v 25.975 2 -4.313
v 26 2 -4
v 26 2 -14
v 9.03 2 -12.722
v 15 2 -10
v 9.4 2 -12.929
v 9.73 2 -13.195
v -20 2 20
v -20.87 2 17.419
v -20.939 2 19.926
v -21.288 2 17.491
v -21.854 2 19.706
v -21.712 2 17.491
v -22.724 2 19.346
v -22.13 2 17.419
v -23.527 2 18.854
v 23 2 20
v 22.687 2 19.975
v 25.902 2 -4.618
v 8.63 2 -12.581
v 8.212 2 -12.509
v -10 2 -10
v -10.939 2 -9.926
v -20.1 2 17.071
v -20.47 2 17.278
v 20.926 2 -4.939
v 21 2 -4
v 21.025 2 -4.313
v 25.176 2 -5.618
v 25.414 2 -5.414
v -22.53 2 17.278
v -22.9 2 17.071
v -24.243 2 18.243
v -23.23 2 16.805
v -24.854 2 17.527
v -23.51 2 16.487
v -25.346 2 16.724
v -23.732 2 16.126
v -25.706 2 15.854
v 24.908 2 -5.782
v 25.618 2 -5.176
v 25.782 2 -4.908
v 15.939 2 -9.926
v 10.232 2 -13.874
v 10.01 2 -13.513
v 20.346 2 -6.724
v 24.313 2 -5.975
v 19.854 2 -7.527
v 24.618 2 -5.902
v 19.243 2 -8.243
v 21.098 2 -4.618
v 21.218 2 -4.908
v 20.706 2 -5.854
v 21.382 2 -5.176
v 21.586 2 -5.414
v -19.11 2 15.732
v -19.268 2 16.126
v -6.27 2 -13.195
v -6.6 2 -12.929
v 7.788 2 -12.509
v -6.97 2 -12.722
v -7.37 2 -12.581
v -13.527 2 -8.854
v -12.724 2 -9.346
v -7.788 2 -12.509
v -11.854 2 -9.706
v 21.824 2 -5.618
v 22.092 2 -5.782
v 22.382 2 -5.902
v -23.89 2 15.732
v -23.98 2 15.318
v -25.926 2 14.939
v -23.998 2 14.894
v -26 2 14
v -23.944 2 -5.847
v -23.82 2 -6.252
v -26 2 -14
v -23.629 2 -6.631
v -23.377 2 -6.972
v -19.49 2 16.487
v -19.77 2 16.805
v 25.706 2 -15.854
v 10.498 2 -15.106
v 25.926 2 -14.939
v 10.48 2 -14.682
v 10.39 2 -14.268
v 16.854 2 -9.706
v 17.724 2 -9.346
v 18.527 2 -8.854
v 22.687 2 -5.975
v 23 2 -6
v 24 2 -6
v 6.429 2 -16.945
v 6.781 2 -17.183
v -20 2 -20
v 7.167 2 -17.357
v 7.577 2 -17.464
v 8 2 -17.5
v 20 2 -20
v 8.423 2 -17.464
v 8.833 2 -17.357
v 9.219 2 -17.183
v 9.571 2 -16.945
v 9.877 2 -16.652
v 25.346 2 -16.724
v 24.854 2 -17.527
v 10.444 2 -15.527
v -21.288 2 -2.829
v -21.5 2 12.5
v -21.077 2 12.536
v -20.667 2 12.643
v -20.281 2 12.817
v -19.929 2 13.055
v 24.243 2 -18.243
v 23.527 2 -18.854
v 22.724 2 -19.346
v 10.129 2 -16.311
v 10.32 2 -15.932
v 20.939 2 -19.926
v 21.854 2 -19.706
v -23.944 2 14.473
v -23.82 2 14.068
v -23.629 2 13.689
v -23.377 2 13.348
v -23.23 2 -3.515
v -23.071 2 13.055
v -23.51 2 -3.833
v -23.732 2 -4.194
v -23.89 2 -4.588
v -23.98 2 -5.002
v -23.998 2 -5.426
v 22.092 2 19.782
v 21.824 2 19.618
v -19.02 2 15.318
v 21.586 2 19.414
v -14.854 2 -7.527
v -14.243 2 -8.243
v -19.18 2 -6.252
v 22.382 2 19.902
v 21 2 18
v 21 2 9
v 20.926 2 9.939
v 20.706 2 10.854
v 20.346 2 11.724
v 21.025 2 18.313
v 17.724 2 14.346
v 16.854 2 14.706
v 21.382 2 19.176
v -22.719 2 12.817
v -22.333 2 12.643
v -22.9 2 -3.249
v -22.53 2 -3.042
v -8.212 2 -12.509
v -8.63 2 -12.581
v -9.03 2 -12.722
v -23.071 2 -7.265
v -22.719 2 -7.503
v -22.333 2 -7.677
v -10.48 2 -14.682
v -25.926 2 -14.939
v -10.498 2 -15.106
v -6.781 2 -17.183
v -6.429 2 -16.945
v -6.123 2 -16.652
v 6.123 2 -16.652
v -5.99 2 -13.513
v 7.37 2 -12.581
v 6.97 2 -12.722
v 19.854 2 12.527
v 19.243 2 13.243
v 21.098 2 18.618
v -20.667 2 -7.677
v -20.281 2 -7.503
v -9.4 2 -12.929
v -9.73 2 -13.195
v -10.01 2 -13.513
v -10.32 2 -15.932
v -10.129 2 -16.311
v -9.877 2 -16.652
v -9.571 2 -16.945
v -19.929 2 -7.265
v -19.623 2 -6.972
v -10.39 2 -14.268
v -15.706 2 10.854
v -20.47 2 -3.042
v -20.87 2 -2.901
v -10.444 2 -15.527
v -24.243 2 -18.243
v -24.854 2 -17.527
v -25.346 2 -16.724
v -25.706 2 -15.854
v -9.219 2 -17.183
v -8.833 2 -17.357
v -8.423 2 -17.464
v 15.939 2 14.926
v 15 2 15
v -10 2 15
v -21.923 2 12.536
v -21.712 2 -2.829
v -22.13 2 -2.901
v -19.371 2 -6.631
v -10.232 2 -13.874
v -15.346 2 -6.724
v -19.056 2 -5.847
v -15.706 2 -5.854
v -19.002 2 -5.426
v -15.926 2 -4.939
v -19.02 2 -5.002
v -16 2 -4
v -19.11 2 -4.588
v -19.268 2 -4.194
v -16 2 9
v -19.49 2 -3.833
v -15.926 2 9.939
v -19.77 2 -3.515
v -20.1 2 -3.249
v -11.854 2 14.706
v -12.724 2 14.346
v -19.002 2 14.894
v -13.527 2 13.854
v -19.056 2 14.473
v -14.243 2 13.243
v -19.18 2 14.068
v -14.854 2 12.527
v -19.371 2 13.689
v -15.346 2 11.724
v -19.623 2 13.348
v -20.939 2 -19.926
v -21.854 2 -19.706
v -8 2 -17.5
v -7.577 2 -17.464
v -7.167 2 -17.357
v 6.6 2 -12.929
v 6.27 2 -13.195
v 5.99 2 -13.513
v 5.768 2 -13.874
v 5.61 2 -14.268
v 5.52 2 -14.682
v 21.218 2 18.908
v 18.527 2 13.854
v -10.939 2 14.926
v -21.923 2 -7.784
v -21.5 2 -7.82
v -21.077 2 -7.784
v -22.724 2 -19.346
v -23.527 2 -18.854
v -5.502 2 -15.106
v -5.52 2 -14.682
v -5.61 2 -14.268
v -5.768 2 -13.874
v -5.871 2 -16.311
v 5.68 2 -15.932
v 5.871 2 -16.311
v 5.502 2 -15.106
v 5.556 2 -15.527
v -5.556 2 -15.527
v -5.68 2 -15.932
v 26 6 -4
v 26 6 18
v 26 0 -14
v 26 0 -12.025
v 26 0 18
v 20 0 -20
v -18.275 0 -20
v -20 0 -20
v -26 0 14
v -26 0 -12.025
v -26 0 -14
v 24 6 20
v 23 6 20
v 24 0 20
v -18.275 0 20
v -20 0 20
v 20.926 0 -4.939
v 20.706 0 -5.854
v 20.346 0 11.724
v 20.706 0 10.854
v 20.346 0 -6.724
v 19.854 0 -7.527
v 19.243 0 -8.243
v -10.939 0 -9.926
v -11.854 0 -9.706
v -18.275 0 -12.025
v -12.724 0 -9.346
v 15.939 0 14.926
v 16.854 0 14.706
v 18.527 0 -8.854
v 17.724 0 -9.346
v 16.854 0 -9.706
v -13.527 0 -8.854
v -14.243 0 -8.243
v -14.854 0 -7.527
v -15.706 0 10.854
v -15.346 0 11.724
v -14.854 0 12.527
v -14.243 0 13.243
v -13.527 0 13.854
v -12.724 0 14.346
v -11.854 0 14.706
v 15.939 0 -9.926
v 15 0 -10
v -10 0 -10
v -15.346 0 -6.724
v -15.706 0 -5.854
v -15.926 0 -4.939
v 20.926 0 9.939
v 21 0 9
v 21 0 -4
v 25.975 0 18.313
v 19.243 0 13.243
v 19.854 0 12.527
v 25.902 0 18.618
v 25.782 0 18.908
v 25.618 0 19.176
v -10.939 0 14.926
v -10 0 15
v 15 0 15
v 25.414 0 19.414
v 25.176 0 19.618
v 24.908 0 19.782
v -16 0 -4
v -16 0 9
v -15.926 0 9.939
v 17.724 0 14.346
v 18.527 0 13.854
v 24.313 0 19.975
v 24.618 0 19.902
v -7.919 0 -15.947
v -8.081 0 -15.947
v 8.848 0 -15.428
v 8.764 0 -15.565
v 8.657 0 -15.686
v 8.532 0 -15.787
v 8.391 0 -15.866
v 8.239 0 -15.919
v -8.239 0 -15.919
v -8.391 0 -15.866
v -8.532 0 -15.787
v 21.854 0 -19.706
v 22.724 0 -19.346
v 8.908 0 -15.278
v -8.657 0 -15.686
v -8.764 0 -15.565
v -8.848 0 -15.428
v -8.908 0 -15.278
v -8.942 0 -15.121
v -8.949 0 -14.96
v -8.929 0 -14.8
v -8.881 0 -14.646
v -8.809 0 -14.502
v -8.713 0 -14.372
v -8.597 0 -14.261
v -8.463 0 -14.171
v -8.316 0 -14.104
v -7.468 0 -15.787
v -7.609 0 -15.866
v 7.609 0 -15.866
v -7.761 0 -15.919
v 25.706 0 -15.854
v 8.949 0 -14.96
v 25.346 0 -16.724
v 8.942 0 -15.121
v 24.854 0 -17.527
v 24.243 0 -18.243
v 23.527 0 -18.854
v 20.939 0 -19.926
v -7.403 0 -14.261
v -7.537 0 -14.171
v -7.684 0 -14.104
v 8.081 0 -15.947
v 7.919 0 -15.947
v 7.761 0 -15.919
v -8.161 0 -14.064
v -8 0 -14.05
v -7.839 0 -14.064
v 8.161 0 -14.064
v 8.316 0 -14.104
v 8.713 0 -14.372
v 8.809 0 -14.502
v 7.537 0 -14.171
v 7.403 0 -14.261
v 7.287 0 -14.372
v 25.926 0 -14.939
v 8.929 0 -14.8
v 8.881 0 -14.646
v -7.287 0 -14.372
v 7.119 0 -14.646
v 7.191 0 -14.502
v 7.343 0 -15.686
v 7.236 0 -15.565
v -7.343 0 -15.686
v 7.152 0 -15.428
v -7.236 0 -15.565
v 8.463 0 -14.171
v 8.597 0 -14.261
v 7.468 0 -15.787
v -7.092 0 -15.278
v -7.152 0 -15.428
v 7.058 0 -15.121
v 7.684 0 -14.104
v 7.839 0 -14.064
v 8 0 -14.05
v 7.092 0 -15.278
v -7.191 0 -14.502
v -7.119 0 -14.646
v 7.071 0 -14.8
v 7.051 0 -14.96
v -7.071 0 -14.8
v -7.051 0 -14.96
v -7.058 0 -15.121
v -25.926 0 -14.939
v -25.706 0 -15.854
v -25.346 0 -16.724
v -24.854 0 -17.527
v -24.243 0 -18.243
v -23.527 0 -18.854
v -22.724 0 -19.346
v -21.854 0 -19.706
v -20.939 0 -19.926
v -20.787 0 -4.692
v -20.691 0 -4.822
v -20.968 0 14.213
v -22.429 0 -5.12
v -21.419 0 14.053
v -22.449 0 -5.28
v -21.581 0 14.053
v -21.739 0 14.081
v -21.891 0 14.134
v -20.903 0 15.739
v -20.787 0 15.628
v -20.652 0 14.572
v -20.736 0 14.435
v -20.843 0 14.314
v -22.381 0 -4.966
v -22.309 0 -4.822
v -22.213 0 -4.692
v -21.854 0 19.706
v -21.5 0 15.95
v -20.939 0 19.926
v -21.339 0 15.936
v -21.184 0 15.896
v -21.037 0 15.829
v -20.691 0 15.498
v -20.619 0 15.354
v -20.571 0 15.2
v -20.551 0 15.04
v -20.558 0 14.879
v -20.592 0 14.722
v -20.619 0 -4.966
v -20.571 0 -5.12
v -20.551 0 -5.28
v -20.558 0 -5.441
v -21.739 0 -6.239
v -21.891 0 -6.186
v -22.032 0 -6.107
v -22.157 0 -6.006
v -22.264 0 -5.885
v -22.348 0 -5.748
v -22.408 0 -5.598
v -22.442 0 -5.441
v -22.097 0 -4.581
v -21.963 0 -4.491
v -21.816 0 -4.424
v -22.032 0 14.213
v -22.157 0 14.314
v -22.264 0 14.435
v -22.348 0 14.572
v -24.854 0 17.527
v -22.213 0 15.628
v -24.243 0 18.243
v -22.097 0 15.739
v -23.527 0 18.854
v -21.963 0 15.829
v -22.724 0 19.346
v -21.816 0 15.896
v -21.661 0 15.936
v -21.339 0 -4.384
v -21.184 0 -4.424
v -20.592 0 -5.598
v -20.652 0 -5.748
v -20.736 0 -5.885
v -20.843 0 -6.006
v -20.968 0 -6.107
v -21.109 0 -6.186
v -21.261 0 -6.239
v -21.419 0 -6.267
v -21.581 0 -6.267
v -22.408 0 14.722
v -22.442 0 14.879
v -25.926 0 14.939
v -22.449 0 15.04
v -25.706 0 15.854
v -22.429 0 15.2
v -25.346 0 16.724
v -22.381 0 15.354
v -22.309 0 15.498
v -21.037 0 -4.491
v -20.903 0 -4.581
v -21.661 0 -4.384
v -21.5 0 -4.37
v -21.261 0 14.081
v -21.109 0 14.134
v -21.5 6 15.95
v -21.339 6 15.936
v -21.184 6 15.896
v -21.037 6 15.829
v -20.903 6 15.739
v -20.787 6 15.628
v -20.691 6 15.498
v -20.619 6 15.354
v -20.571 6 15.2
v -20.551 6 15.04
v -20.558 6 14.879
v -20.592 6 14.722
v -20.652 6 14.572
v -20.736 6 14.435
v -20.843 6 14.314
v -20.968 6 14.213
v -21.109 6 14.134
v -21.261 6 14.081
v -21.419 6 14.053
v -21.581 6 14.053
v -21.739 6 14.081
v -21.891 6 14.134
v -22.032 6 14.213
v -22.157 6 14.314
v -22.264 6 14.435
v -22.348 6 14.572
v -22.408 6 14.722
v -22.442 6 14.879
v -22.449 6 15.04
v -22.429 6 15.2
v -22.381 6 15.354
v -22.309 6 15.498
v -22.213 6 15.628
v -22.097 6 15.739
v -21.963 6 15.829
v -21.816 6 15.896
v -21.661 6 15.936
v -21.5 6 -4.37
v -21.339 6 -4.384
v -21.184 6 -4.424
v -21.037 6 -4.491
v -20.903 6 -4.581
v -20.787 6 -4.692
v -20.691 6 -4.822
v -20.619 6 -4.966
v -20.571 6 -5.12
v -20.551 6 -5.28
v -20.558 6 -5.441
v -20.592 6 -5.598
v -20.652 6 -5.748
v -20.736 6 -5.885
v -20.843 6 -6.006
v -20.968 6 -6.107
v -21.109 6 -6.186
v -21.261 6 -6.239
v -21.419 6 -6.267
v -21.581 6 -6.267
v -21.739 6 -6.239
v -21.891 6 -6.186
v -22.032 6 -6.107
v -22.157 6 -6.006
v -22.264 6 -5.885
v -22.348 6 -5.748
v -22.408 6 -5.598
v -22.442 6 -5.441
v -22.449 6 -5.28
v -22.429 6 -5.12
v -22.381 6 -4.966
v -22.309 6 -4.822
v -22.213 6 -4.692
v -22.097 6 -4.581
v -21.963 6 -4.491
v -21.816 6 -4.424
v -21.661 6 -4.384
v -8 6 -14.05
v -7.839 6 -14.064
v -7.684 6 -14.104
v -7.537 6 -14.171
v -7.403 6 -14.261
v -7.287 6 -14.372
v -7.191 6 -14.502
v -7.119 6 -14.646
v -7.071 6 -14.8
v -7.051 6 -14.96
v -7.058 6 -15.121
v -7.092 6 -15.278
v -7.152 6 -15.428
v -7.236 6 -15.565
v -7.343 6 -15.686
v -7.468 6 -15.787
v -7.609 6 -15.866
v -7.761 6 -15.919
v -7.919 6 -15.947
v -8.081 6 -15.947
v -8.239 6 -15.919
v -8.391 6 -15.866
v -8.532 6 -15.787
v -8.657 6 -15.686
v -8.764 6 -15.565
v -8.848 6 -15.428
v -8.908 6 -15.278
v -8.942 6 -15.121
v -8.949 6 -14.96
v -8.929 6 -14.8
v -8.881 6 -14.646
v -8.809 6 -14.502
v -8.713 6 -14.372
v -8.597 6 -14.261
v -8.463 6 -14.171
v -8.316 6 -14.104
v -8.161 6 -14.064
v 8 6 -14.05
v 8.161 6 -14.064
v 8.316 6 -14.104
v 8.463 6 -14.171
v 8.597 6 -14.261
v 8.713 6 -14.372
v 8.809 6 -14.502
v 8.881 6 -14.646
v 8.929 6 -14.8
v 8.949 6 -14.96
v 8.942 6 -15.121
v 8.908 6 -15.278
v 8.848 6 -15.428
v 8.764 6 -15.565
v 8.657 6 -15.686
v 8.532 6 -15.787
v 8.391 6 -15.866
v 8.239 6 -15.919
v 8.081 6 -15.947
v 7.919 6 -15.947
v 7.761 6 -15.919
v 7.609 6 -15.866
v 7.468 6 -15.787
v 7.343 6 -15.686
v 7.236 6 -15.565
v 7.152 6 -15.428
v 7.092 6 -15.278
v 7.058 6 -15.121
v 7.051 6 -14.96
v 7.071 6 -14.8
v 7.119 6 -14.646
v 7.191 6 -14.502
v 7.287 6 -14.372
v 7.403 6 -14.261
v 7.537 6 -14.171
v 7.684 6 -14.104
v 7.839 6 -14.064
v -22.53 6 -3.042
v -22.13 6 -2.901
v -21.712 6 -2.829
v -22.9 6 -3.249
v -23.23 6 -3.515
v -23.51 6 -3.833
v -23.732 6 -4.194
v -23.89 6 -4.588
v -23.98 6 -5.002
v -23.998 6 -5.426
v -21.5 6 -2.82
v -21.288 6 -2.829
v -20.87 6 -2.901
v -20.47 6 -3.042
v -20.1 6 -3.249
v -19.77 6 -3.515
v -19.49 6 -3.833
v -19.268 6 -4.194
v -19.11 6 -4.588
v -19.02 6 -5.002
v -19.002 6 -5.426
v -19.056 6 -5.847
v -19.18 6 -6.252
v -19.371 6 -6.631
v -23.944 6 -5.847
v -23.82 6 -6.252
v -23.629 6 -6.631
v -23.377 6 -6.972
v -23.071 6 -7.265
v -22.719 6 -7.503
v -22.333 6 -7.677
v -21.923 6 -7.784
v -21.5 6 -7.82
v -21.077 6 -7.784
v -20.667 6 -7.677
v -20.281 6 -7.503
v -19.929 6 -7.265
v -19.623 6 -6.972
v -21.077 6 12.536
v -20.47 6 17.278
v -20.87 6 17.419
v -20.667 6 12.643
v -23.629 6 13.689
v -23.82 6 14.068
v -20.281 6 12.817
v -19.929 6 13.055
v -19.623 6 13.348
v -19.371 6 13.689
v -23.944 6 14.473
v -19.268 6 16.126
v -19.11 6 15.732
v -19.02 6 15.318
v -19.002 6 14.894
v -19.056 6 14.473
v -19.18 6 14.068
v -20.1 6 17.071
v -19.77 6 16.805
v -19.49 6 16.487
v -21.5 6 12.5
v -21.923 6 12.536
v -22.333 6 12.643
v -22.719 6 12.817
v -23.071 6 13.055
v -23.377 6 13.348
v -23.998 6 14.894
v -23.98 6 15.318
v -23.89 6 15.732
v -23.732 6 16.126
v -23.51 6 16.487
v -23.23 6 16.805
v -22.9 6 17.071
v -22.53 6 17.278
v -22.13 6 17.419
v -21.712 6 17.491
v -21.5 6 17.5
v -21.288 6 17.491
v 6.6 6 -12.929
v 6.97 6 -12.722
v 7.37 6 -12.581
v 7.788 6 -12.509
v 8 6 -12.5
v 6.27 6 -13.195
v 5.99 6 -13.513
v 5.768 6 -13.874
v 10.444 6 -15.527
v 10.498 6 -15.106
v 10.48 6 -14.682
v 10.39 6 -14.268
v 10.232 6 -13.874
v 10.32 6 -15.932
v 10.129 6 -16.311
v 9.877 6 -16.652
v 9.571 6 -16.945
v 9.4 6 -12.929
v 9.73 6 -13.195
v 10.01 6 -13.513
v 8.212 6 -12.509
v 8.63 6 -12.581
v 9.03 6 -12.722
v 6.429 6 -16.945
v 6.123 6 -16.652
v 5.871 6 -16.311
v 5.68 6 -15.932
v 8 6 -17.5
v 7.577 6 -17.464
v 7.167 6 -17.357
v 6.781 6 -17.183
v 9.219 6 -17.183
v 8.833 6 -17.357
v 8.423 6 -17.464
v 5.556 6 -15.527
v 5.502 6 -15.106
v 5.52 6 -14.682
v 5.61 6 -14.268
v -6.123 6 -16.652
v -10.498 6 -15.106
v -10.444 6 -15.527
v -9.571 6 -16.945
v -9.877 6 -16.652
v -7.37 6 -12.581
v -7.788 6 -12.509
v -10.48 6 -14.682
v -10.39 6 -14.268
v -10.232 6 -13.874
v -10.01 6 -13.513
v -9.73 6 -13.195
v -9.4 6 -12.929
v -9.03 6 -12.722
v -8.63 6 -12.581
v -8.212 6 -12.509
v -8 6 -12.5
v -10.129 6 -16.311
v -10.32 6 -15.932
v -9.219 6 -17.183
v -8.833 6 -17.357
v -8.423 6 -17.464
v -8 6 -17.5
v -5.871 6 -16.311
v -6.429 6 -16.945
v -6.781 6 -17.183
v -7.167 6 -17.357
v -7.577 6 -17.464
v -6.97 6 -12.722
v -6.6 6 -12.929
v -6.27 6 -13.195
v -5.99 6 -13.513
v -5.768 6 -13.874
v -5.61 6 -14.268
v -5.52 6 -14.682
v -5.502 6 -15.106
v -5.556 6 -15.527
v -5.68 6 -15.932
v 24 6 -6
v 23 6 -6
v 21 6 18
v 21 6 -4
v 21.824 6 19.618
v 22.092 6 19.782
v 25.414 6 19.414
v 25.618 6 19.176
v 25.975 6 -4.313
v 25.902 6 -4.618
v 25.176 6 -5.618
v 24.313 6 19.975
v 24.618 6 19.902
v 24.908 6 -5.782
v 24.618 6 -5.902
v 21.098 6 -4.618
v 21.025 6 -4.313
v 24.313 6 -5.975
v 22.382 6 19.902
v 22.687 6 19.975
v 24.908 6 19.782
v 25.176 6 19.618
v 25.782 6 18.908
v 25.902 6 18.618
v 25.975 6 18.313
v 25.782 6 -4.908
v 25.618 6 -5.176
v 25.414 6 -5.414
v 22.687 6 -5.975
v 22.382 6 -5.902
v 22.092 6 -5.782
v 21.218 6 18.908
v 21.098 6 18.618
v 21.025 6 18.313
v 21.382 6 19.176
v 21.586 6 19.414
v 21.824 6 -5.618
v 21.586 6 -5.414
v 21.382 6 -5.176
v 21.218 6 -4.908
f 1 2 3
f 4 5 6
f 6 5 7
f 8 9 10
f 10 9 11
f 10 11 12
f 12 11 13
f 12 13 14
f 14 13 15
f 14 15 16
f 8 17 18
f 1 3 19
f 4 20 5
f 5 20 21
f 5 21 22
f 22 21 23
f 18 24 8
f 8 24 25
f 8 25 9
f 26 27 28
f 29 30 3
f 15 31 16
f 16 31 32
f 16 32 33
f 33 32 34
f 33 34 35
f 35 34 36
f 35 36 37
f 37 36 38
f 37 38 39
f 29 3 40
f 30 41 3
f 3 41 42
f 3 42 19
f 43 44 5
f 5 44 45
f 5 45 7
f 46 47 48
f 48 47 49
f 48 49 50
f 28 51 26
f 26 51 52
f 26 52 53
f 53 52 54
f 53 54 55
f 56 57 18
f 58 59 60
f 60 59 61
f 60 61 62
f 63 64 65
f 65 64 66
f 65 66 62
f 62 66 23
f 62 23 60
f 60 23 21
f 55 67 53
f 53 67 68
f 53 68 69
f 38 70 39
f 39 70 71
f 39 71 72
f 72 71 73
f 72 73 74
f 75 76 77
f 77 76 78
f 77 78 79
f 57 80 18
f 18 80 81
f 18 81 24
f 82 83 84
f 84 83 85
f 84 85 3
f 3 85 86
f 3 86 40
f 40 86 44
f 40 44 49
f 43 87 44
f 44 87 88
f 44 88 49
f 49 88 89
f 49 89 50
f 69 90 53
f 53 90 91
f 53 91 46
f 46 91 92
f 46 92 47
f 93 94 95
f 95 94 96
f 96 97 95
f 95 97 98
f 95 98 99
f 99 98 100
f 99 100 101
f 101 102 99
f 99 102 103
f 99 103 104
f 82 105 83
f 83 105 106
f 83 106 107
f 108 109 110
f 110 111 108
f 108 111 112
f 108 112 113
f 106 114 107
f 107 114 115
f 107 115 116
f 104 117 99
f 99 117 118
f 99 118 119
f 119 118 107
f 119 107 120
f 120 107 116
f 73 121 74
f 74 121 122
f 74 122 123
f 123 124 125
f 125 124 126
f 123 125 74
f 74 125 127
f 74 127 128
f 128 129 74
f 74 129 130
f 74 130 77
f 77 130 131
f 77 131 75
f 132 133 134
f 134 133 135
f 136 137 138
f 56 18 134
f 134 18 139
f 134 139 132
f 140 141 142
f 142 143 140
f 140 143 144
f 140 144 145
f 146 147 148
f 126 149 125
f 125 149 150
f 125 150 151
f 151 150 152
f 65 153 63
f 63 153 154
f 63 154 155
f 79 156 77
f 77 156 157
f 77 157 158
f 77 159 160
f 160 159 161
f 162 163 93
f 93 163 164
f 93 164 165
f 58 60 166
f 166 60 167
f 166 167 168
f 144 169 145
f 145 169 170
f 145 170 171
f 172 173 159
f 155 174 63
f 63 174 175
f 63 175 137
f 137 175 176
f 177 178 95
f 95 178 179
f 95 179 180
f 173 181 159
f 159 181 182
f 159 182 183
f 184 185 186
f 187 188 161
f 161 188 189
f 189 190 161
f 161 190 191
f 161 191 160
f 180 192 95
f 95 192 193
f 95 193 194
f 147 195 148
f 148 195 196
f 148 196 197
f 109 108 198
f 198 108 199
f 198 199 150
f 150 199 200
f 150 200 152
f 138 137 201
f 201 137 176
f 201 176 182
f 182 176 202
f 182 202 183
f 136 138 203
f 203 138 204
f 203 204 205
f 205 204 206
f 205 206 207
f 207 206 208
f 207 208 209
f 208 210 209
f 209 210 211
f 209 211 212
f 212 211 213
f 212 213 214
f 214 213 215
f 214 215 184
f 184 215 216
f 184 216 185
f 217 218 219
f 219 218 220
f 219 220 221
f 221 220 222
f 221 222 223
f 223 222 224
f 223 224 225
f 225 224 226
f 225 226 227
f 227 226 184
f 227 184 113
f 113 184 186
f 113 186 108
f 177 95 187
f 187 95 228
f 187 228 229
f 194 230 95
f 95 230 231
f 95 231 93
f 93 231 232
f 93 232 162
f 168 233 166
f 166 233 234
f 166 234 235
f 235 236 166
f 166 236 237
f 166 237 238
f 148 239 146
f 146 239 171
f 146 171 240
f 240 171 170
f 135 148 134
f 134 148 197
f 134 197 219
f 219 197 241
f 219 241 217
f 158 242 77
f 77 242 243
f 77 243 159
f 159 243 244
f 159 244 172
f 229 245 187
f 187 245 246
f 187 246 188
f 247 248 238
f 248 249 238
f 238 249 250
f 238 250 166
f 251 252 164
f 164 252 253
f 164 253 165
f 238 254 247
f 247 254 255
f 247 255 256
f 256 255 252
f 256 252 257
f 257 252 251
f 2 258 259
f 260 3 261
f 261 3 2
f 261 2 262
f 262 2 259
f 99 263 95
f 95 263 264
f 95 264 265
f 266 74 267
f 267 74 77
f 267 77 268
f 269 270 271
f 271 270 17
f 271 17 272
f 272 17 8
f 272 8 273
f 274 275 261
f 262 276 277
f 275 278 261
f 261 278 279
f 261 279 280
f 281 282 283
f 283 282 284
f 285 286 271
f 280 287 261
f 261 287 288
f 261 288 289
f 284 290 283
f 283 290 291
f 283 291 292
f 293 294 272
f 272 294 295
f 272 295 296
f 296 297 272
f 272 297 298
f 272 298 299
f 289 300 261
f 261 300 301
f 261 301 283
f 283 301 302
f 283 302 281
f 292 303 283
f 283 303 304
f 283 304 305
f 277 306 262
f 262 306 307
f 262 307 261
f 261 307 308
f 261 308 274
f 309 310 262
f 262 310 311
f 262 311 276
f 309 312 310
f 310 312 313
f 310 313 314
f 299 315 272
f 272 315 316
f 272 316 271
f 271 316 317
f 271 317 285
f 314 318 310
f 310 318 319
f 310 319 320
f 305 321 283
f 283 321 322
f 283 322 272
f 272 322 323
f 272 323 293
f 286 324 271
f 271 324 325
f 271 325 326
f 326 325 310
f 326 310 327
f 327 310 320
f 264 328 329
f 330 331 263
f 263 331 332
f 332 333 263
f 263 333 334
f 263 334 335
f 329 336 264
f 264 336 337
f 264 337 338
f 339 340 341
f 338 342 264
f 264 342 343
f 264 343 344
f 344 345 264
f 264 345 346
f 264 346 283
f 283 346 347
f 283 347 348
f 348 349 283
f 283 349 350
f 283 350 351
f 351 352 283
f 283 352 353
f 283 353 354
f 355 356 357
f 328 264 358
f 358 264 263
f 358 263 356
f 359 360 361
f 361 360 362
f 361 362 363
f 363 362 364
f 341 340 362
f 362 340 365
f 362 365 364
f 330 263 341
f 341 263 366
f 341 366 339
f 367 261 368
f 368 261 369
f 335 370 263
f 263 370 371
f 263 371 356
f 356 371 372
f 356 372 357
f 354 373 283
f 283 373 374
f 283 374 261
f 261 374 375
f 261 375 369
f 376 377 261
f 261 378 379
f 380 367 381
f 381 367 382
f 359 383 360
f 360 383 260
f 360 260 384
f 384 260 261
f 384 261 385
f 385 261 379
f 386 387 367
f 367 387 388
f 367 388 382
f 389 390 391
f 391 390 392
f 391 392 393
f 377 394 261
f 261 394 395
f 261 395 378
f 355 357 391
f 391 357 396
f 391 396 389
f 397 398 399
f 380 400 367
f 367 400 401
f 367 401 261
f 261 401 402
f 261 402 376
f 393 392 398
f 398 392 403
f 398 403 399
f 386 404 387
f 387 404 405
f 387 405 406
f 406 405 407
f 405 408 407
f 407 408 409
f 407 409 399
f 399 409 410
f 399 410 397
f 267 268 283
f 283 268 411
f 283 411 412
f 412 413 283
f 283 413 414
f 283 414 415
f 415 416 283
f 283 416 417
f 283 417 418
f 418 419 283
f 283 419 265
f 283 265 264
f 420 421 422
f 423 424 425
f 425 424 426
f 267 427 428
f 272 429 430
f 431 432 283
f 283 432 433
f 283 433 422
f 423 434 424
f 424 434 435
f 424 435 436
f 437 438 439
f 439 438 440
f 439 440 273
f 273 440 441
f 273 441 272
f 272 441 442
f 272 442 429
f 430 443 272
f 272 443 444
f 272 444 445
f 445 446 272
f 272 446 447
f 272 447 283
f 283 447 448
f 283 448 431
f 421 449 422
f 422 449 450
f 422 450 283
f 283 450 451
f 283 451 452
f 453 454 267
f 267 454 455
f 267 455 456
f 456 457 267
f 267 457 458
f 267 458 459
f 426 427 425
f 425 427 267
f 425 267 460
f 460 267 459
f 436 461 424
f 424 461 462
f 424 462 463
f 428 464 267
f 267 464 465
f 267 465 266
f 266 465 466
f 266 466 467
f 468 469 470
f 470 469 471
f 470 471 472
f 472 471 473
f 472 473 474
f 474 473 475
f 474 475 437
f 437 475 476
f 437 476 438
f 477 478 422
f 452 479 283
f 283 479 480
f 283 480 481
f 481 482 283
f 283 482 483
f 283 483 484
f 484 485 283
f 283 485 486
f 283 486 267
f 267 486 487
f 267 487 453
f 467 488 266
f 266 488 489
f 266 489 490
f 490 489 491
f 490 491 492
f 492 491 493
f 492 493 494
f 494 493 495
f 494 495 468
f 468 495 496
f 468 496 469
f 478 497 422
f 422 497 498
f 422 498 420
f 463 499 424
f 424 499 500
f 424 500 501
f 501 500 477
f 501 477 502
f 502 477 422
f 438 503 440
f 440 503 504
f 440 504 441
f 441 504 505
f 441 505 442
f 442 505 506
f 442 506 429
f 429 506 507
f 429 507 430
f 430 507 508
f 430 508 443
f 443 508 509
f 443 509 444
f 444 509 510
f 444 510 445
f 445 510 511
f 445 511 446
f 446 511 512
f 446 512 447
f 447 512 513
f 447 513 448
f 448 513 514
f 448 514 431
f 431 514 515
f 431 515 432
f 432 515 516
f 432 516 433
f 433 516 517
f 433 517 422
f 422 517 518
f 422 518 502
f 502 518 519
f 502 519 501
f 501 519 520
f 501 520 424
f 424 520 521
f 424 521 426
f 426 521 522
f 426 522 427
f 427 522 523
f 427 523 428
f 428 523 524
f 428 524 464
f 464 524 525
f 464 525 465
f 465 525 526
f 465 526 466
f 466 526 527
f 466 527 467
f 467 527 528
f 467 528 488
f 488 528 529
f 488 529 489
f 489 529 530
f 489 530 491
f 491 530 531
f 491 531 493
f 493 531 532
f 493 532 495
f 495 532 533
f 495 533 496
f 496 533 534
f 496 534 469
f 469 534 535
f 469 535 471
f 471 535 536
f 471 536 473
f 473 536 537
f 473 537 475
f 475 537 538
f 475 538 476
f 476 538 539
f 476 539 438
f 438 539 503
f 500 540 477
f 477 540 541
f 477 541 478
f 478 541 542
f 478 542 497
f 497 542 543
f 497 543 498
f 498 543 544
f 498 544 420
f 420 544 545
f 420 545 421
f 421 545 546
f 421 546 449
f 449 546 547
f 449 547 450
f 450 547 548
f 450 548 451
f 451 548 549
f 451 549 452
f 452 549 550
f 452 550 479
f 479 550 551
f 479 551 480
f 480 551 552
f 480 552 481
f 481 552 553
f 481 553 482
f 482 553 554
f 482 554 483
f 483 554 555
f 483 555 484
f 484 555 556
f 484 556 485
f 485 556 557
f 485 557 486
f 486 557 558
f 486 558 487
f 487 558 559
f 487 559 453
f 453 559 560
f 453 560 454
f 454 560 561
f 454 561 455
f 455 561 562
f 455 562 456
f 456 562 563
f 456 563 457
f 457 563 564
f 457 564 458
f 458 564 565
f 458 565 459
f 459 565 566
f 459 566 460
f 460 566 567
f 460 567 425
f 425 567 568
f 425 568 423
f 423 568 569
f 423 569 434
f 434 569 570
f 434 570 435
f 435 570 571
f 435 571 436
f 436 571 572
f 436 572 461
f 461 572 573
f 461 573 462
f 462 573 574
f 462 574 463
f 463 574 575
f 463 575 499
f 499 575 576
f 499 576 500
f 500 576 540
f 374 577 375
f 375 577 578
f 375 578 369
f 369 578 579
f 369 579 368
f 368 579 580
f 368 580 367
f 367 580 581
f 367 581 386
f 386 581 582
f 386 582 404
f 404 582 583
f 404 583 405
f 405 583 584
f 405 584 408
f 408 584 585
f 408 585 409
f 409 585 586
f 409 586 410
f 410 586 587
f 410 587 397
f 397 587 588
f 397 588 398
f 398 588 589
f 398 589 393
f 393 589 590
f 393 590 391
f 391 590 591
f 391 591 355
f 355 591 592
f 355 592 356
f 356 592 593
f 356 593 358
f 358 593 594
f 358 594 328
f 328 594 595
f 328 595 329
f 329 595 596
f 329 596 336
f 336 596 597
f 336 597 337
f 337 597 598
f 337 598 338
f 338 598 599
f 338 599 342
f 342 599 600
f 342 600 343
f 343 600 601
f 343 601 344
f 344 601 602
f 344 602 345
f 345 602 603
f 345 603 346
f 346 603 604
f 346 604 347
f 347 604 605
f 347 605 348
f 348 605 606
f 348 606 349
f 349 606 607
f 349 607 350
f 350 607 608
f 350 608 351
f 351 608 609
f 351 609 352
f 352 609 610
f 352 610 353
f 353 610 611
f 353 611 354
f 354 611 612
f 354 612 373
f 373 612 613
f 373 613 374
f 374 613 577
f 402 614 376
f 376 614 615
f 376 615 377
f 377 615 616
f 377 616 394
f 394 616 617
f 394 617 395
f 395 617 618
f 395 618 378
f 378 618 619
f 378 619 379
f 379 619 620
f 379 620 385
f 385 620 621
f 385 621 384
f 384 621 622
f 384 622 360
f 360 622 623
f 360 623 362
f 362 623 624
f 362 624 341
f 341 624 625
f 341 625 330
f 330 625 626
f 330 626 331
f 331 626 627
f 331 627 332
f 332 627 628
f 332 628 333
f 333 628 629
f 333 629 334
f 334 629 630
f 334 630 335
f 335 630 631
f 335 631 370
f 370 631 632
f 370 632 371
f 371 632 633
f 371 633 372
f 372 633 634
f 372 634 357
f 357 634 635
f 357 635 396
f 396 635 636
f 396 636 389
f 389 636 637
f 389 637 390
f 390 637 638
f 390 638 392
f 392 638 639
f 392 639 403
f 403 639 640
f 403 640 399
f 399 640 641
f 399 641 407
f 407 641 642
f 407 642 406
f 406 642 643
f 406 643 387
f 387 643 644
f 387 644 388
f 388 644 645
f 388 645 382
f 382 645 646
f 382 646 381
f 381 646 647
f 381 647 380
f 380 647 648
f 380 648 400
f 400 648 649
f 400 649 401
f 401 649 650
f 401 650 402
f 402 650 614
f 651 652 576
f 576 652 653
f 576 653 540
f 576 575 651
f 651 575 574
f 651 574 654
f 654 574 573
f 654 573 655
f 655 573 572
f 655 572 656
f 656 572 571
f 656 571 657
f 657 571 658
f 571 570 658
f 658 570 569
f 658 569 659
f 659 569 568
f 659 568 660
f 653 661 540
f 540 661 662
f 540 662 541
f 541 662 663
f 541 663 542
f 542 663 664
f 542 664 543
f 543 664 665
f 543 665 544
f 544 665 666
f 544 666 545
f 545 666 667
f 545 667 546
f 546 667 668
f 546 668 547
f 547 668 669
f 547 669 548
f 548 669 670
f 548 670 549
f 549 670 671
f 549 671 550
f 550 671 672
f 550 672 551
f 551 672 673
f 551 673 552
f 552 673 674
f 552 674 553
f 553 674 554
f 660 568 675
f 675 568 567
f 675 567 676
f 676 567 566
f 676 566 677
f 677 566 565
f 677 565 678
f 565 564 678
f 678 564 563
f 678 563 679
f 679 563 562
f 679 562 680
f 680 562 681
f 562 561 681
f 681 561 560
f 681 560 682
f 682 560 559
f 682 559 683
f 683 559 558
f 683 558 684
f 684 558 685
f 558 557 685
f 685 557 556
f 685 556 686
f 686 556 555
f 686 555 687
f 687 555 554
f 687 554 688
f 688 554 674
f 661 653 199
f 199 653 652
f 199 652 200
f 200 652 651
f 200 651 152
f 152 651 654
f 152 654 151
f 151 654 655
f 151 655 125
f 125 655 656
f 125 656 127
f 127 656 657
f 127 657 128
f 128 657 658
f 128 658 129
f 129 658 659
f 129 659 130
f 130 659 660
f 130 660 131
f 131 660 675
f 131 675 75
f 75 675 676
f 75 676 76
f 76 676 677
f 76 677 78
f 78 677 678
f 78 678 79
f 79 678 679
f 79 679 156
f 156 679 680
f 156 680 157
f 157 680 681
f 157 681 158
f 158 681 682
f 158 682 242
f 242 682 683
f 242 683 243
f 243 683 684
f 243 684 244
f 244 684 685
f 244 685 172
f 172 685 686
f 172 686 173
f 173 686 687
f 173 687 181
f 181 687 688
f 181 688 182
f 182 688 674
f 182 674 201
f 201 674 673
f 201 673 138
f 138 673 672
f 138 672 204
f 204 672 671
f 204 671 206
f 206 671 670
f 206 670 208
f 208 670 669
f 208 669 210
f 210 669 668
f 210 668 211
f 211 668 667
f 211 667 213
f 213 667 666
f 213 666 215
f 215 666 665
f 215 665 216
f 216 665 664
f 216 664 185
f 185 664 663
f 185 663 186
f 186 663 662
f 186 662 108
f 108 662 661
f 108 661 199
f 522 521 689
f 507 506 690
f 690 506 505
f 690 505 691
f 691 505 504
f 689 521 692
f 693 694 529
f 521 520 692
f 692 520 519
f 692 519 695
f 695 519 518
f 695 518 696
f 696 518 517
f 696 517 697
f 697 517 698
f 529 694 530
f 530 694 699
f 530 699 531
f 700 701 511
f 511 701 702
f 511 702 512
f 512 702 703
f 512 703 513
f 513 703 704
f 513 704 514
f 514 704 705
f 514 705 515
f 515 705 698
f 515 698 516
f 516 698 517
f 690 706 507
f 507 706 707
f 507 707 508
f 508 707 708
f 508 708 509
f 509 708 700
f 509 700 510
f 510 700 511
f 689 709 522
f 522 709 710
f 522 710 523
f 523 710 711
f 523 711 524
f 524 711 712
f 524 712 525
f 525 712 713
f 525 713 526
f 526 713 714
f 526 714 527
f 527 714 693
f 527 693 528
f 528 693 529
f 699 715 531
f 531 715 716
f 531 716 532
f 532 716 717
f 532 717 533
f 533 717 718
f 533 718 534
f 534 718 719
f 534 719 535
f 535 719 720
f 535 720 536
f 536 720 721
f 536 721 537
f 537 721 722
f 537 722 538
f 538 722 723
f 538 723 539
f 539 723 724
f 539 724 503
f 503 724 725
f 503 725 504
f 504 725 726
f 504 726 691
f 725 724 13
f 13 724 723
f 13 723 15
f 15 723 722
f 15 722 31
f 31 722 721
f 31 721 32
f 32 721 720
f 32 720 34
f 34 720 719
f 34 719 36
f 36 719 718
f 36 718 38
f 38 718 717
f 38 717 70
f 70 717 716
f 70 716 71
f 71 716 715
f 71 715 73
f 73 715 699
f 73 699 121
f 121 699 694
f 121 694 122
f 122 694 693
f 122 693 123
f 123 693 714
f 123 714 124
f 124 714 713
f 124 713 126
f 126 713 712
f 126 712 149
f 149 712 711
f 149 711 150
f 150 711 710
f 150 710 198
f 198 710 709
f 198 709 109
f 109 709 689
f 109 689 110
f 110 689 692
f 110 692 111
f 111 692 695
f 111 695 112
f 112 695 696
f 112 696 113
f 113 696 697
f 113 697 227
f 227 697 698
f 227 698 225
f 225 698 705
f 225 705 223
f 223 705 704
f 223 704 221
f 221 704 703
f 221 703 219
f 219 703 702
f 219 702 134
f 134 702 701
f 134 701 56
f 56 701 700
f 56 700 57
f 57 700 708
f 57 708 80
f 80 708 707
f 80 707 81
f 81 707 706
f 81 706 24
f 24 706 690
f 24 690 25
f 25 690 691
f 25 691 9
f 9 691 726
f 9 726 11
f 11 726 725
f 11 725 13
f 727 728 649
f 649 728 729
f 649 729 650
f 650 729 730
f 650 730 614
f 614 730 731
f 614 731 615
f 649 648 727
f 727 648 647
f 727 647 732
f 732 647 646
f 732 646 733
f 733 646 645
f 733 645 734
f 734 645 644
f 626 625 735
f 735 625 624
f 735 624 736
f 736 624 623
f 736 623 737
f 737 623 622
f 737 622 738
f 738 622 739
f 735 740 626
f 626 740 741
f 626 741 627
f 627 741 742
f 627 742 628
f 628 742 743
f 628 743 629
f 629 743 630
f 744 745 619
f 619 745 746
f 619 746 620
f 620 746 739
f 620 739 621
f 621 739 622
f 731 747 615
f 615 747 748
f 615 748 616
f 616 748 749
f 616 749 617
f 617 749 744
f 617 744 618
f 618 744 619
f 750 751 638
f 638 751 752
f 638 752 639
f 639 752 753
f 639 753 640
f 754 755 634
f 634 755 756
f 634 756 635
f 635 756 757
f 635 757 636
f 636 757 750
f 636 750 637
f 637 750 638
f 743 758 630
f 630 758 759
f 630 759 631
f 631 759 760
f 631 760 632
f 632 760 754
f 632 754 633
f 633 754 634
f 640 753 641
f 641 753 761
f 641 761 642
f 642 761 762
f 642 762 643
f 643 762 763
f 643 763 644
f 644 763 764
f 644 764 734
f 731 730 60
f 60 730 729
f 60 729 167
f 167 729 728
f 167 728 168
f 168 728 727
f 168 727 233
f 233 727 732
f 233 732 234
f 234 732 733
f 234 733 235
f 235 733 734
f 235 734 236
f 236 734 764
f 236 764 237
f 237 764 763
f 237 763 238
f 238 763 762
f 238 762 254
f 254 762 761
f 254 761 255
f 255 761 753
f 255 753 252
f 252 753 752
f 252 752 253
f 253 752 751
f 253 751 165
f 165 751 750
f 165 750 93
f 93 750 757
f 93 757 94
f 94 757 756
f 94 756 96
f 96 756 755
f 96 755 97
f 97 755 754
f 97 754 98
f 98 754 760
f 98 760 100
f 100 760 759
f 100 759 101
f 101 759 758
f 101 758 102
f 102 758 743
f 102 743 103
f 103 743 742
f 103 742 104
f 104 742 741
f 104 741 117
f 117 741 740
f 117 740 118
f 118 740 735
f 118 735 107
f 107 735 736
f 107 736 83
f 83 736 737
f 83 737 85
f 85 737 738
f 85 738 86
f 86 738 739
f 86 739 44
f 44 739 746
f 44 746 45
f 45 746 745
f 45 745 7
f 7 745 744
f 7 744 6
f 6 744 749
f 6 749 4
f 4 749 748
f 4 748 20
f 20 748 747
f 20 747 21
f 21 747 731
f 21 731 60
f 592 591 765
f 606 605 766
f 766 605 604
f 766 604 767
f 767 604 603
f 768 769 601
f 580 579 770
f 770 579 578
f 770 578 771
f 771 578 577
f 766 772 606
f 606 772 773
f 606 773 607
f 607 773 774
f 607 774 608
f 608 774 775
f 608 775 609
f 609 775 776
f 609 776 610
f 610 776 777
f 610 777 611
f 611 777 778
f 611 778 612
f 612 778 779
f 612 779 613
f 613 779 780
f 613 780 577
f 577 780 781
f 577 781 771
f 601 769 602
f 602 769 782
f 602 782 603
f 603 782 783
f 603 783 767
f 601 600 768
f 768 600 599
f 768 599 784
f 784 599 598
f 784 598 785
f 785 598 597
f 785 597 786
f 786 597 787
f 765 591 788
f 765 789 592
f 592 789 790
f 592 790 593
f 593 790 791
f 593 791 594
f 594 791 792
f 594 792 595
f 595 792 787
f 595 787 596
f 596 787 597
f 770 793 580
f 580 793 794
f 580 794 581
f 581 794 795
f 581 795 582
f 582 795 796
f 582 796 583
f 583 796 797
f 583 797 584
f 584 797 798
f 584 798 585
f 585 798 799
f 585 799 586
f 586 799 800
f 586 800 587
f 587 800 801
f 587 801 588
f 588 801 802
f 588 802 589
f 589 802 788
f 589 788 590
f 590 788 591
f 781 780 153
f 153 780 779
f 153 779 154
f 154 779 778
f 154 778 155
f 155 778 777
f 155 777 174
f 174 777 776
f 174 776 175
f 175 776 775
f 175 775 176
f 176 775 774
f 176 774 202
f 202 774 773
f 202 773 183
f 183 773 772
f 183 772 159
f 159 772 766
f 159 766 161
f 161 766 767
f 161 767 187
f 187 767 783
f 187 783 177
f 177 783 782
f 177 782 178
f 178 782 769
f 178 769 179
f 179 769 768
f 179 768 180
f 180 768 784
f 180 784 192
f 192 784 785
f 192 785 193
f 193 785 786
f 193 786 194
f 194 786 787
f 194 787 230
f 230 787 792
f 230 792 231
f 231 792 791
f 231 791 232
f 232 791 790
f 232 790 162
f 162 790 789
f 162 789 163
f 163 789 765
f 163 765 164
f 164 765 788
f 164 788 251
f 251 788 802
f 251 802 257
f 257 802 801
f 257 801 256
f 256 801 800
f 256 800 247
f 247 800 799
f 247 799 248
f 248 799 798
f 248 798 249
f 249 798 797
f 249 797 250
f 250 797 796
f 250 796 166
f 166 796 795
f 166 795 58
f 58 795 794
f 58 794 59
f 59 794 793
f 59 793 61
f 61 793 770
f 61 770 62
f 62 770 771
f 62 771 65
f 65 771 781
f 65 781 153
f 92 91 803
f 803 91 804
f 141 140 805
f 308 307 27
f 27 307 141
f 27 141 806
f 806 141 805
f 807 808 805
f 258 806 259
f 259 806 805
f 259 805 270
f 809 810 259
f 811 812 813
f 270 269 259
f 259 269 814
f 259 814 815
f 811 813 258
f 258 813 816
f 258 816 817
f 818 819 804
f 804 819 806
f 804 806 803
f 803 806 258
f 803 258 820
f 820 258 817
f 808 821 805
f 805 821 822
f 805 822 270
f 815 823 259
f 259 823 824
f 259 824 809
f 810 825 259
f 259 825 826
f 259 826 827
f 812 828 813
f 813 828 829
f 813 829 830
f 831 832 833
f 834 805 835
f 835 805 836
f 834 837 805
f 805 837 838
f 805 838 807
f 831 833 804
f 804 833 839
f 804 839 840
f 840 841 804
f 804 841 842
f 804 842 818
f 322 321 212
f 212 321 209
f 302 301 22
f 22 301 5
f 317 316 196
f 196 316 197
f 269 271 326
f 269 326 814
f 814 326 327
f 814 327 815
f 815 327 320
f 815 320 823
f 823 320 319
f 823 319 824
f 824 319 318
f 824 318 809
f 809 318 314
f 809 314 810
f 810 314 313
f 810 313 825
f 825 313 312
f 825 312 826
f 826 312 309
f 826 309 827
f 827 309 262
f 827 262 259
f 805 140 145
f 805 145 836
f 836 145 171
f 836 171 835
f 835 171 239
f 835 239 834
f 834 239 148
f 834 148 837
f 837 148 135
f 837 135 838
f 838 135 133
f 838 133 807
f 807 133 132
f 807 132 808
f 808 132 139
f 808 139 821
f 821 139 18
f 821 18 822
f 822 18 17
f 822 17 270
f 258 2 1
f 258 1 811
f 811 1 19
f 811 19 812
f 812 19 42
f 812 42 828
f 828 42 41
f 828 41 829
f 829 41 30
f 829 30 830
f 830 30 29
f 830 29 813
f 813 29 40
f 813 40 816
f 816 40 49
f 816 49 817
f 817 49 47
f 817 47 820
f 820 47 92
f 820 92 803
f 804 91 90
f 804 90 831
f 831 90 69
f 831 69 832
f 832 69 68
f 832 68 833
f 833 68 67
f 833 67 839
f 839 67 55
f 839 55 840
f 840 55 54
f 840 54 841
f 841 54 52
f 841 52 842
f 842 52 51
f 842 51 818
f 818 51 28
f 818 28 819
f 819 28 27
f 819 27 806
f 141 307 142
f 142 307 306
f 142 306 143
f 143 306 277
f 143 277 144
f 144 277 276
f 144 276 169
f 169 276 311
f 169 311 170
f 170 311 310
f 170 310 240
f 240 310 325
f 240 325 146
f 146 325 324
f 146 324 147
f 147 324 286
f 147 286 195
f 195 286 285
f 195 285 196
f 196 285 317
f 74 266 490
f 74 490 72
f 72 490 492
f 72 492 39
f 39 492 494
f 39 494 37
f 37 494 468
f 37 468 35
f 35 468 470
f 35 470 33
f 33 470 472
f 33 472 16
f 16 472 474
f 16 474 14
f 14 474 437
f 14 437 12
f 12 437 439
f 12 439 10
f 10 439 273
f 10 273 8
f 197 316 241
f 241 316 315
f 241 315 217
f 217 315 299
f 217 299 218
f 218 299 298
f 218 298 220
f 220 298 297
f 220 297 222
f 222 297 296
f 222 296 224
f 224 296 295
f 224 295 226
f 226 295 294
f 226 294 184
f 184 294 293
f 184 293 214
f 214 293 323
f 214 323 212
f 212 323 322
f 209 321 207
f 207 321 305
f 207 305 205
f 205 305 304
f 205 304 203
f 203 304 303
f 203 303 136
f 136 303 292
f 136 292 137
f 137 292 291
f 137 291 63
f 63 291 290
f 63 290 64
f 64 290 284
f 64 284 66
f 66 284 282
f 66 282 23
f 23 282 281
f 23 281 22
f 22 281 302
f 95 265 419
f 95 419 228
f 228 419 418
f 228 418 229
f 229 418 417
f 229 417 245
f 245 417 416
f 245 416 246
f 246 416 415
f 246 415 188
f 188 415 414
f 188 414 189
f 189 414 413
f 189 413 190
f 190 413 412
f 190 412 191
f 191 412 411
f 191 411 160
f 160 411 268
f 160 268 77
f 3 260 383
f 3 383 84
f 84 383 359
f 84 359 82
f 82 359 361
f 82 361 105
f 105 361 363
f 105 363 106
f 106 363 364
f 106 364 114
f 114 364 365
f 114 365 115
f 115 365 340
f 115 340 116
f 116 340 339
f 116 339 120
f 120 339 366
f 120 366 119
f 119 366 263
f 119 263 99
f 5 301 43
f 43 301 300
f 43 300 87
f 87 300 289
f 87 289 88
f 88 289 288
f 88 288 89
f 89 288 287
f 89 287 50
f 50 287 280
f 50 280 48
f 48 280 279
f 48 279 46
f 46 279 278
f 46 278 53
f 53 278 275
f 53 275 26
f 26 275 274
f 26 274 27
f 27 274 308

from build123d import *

# Parameters (mm, degrees)
SKETCH1_W           = 52
SKETCH1_H           = 40
BOSS_EXTRUDE1_DEPTH = 2
SKETCH2_R           = 0.95
CUT_EXTRUDE1_DEPTH  = 33.86335345
BOSS_EXTRUDE2_START = 4
SKETCH3_R           = 2.5
SKETCH3_R_2         = 0.95
BOSS_EXTRUDE2_DEPTH = 4
SKETCH4_W           = 5
SKETCH4_H           = 26
BOSS_EXTRUDE3_DEPTH = 4
SKETCH5_W           = 37
SKETCH5_H           = 25
CUT_EXTRUDE2_DEPTH  = 34.045423284
FILLET1_R           = 2
FILLET2_R           = 6


with BuildPart() as part:
    # Sketch1 → Boss-Extrude1 (new body)
    with BuildSketch(Plane(origin=(0, 0, 0), x_dir=(1, 0, 0), z_dir=(0, 1, 0))):
        Rectangle(SKETCH1_W, SKETCH1_H)
    extrude(amount=BOSS_EXTRUDE1_DEPTH)

    # Sketch2 → Cut-Extrude1 (cut, through all)
    with BuildSketch(Plane(origin=(0, 2, 0), x_dir=(1, 0, 0), z_dir=(0, 1, 0))):
        with Locations(Location((8, 15, 0), (0, 0, 270))):
            Circle(SKETCH2_R)
        with Locations(Location((-8, 15, 0), (0, 0, 270))):
            Circle(SKETCH2_R)
        with Locations(Location((-21.5, 5.32, 0), (0, 0, 270))):
            Circle(SKETCH2_R)
        with Locations(Location((-21.5, -15, 0), (0, 0, 270))):
            Circle(SKETCH2_R)
    extrude(amount=-CUT_EXTRUDE1_DEPTH, mode=Mode.SUBTRACT)

    # Sketch3 → Boss-Extrude2 (add)
    # profile 1 of 4: a face of its own
    with BuildSketch(Plane(origin=(0, 2, 0), x_dir=(1, 0, 0), z_dir=(0, 1, 0)).offset(BOSS_EXTRUDE2_START)):
        with Locations(Location((-21.5, 5.32, 0), (0, 0, 90))):
            Circle(SKETCH3_R)
        with Locations(Location((-21.5, 5.32, 0), (0, 0, 270))):
            Circle(SKETCH3_R_2, mode=Mode.SUBTRACT)
    # profile 2 of 4: a face of its own
    with BuildSketch(Plane(origin=(0, 2, 0), x_dir=(1, 0, 0), z_dir=(0, 1, 0)).offset(BOSS_EXTRUDE2_START)):
        with Locations(Location((-21.5, -15, 0), (0, 0, 90))):
            Circle(SKETCH3_R)
        with Locations(Location((-21.5, -15, 0), (0, 0, 270))):
            Circle(SKETCH3_R_2, mode=Mode.SUBTRACT)
    # profile 3 of 4: a face of its own
    with BuildSketch(Plane(origin=(0, 2, 0), x_dir=(1, 0, 0), z_dir=(0, 1, 0)).offset(BOSS_EXTRUDE2_START)):
        with Locations(Location((8, 15, 0), (0, 0, 90))):
            Circle(SKETCH3_R)
        with Locations(Location((8, 15, 0), (0, 0, 270))):
            Circle(SKETCH3_R_2, mode=Mode.SUBTRACT)
    # profile 4 of 4: a face of its own
    with BuildSketch(Plane(origin=(0, 2, 0), x_dir=(1, 0, 0), z_dir=(0, 1, 0)).offset(BOSS_EXTRUDE2_START)):
        with Locations(Location((-8, 15, 0), (0, 0, 90))):
            Circle(SKETCH3_R)
        with Locations(Location((-8, 15, 0), (0, 0, 270))):
            Circle(SKETCH3_R_2, mode=Mode.SUBTRACT)
    extrude(amount=-BOSS_EXTRUDE2_DEPTH)

    # Sketch4 → Boss-Extrude3 (add)
    with BuildSketch(Plane(origin=(0, 2, 0), x_dir=(1, 0, 0), z_dir=(0, 1, 0))):
        with Locations((23.5, -7)):
            Rectangle(SKETCH4_W, SKETCH4_H)
    extrude(amount=BOSS_EXTRUDE3_DEPTH)

    # Sketch5 → Cut-Extrude2 (cut, through all)
    with BuildSketch(Plane(origin=(0, 2, 0), x_dir=(1, 0, 0), z_dir=(0, 1, 0))):
        with Locations((2.5, -2.5)):
            Rectangle(SKETCH5_W, SKETCH5_H)
    extrude(amount=-CUT_EXTRUDE2_DEPTH, mode=Mode.SUBTRACT)

    # Fillet1
    fillet1_edges = [part.edges().sort_by_distance(p)[0] for p in [
        (26, 4, -6),
        (21, 4, -6),
        (21, 4, 20),
        (26, 3, 20),
    ]]
    fillet(fillet1_edges, radius=FILLET1_R)

    # Fillet2
    fillet2_edges = [part.edges().sort_by_distance(p)[0] for p in [
        (-16, 1, 15),
        (-16, 1, -10),
        (21, 1, -10),
        (21, 1, 15),
        (-26, 1, 20),
        (-26, 1, -20),
        (26, 1, -20),
    ]]
    fillet(fillet2_edges, radius=FILLET2_R)


solid = part.part
